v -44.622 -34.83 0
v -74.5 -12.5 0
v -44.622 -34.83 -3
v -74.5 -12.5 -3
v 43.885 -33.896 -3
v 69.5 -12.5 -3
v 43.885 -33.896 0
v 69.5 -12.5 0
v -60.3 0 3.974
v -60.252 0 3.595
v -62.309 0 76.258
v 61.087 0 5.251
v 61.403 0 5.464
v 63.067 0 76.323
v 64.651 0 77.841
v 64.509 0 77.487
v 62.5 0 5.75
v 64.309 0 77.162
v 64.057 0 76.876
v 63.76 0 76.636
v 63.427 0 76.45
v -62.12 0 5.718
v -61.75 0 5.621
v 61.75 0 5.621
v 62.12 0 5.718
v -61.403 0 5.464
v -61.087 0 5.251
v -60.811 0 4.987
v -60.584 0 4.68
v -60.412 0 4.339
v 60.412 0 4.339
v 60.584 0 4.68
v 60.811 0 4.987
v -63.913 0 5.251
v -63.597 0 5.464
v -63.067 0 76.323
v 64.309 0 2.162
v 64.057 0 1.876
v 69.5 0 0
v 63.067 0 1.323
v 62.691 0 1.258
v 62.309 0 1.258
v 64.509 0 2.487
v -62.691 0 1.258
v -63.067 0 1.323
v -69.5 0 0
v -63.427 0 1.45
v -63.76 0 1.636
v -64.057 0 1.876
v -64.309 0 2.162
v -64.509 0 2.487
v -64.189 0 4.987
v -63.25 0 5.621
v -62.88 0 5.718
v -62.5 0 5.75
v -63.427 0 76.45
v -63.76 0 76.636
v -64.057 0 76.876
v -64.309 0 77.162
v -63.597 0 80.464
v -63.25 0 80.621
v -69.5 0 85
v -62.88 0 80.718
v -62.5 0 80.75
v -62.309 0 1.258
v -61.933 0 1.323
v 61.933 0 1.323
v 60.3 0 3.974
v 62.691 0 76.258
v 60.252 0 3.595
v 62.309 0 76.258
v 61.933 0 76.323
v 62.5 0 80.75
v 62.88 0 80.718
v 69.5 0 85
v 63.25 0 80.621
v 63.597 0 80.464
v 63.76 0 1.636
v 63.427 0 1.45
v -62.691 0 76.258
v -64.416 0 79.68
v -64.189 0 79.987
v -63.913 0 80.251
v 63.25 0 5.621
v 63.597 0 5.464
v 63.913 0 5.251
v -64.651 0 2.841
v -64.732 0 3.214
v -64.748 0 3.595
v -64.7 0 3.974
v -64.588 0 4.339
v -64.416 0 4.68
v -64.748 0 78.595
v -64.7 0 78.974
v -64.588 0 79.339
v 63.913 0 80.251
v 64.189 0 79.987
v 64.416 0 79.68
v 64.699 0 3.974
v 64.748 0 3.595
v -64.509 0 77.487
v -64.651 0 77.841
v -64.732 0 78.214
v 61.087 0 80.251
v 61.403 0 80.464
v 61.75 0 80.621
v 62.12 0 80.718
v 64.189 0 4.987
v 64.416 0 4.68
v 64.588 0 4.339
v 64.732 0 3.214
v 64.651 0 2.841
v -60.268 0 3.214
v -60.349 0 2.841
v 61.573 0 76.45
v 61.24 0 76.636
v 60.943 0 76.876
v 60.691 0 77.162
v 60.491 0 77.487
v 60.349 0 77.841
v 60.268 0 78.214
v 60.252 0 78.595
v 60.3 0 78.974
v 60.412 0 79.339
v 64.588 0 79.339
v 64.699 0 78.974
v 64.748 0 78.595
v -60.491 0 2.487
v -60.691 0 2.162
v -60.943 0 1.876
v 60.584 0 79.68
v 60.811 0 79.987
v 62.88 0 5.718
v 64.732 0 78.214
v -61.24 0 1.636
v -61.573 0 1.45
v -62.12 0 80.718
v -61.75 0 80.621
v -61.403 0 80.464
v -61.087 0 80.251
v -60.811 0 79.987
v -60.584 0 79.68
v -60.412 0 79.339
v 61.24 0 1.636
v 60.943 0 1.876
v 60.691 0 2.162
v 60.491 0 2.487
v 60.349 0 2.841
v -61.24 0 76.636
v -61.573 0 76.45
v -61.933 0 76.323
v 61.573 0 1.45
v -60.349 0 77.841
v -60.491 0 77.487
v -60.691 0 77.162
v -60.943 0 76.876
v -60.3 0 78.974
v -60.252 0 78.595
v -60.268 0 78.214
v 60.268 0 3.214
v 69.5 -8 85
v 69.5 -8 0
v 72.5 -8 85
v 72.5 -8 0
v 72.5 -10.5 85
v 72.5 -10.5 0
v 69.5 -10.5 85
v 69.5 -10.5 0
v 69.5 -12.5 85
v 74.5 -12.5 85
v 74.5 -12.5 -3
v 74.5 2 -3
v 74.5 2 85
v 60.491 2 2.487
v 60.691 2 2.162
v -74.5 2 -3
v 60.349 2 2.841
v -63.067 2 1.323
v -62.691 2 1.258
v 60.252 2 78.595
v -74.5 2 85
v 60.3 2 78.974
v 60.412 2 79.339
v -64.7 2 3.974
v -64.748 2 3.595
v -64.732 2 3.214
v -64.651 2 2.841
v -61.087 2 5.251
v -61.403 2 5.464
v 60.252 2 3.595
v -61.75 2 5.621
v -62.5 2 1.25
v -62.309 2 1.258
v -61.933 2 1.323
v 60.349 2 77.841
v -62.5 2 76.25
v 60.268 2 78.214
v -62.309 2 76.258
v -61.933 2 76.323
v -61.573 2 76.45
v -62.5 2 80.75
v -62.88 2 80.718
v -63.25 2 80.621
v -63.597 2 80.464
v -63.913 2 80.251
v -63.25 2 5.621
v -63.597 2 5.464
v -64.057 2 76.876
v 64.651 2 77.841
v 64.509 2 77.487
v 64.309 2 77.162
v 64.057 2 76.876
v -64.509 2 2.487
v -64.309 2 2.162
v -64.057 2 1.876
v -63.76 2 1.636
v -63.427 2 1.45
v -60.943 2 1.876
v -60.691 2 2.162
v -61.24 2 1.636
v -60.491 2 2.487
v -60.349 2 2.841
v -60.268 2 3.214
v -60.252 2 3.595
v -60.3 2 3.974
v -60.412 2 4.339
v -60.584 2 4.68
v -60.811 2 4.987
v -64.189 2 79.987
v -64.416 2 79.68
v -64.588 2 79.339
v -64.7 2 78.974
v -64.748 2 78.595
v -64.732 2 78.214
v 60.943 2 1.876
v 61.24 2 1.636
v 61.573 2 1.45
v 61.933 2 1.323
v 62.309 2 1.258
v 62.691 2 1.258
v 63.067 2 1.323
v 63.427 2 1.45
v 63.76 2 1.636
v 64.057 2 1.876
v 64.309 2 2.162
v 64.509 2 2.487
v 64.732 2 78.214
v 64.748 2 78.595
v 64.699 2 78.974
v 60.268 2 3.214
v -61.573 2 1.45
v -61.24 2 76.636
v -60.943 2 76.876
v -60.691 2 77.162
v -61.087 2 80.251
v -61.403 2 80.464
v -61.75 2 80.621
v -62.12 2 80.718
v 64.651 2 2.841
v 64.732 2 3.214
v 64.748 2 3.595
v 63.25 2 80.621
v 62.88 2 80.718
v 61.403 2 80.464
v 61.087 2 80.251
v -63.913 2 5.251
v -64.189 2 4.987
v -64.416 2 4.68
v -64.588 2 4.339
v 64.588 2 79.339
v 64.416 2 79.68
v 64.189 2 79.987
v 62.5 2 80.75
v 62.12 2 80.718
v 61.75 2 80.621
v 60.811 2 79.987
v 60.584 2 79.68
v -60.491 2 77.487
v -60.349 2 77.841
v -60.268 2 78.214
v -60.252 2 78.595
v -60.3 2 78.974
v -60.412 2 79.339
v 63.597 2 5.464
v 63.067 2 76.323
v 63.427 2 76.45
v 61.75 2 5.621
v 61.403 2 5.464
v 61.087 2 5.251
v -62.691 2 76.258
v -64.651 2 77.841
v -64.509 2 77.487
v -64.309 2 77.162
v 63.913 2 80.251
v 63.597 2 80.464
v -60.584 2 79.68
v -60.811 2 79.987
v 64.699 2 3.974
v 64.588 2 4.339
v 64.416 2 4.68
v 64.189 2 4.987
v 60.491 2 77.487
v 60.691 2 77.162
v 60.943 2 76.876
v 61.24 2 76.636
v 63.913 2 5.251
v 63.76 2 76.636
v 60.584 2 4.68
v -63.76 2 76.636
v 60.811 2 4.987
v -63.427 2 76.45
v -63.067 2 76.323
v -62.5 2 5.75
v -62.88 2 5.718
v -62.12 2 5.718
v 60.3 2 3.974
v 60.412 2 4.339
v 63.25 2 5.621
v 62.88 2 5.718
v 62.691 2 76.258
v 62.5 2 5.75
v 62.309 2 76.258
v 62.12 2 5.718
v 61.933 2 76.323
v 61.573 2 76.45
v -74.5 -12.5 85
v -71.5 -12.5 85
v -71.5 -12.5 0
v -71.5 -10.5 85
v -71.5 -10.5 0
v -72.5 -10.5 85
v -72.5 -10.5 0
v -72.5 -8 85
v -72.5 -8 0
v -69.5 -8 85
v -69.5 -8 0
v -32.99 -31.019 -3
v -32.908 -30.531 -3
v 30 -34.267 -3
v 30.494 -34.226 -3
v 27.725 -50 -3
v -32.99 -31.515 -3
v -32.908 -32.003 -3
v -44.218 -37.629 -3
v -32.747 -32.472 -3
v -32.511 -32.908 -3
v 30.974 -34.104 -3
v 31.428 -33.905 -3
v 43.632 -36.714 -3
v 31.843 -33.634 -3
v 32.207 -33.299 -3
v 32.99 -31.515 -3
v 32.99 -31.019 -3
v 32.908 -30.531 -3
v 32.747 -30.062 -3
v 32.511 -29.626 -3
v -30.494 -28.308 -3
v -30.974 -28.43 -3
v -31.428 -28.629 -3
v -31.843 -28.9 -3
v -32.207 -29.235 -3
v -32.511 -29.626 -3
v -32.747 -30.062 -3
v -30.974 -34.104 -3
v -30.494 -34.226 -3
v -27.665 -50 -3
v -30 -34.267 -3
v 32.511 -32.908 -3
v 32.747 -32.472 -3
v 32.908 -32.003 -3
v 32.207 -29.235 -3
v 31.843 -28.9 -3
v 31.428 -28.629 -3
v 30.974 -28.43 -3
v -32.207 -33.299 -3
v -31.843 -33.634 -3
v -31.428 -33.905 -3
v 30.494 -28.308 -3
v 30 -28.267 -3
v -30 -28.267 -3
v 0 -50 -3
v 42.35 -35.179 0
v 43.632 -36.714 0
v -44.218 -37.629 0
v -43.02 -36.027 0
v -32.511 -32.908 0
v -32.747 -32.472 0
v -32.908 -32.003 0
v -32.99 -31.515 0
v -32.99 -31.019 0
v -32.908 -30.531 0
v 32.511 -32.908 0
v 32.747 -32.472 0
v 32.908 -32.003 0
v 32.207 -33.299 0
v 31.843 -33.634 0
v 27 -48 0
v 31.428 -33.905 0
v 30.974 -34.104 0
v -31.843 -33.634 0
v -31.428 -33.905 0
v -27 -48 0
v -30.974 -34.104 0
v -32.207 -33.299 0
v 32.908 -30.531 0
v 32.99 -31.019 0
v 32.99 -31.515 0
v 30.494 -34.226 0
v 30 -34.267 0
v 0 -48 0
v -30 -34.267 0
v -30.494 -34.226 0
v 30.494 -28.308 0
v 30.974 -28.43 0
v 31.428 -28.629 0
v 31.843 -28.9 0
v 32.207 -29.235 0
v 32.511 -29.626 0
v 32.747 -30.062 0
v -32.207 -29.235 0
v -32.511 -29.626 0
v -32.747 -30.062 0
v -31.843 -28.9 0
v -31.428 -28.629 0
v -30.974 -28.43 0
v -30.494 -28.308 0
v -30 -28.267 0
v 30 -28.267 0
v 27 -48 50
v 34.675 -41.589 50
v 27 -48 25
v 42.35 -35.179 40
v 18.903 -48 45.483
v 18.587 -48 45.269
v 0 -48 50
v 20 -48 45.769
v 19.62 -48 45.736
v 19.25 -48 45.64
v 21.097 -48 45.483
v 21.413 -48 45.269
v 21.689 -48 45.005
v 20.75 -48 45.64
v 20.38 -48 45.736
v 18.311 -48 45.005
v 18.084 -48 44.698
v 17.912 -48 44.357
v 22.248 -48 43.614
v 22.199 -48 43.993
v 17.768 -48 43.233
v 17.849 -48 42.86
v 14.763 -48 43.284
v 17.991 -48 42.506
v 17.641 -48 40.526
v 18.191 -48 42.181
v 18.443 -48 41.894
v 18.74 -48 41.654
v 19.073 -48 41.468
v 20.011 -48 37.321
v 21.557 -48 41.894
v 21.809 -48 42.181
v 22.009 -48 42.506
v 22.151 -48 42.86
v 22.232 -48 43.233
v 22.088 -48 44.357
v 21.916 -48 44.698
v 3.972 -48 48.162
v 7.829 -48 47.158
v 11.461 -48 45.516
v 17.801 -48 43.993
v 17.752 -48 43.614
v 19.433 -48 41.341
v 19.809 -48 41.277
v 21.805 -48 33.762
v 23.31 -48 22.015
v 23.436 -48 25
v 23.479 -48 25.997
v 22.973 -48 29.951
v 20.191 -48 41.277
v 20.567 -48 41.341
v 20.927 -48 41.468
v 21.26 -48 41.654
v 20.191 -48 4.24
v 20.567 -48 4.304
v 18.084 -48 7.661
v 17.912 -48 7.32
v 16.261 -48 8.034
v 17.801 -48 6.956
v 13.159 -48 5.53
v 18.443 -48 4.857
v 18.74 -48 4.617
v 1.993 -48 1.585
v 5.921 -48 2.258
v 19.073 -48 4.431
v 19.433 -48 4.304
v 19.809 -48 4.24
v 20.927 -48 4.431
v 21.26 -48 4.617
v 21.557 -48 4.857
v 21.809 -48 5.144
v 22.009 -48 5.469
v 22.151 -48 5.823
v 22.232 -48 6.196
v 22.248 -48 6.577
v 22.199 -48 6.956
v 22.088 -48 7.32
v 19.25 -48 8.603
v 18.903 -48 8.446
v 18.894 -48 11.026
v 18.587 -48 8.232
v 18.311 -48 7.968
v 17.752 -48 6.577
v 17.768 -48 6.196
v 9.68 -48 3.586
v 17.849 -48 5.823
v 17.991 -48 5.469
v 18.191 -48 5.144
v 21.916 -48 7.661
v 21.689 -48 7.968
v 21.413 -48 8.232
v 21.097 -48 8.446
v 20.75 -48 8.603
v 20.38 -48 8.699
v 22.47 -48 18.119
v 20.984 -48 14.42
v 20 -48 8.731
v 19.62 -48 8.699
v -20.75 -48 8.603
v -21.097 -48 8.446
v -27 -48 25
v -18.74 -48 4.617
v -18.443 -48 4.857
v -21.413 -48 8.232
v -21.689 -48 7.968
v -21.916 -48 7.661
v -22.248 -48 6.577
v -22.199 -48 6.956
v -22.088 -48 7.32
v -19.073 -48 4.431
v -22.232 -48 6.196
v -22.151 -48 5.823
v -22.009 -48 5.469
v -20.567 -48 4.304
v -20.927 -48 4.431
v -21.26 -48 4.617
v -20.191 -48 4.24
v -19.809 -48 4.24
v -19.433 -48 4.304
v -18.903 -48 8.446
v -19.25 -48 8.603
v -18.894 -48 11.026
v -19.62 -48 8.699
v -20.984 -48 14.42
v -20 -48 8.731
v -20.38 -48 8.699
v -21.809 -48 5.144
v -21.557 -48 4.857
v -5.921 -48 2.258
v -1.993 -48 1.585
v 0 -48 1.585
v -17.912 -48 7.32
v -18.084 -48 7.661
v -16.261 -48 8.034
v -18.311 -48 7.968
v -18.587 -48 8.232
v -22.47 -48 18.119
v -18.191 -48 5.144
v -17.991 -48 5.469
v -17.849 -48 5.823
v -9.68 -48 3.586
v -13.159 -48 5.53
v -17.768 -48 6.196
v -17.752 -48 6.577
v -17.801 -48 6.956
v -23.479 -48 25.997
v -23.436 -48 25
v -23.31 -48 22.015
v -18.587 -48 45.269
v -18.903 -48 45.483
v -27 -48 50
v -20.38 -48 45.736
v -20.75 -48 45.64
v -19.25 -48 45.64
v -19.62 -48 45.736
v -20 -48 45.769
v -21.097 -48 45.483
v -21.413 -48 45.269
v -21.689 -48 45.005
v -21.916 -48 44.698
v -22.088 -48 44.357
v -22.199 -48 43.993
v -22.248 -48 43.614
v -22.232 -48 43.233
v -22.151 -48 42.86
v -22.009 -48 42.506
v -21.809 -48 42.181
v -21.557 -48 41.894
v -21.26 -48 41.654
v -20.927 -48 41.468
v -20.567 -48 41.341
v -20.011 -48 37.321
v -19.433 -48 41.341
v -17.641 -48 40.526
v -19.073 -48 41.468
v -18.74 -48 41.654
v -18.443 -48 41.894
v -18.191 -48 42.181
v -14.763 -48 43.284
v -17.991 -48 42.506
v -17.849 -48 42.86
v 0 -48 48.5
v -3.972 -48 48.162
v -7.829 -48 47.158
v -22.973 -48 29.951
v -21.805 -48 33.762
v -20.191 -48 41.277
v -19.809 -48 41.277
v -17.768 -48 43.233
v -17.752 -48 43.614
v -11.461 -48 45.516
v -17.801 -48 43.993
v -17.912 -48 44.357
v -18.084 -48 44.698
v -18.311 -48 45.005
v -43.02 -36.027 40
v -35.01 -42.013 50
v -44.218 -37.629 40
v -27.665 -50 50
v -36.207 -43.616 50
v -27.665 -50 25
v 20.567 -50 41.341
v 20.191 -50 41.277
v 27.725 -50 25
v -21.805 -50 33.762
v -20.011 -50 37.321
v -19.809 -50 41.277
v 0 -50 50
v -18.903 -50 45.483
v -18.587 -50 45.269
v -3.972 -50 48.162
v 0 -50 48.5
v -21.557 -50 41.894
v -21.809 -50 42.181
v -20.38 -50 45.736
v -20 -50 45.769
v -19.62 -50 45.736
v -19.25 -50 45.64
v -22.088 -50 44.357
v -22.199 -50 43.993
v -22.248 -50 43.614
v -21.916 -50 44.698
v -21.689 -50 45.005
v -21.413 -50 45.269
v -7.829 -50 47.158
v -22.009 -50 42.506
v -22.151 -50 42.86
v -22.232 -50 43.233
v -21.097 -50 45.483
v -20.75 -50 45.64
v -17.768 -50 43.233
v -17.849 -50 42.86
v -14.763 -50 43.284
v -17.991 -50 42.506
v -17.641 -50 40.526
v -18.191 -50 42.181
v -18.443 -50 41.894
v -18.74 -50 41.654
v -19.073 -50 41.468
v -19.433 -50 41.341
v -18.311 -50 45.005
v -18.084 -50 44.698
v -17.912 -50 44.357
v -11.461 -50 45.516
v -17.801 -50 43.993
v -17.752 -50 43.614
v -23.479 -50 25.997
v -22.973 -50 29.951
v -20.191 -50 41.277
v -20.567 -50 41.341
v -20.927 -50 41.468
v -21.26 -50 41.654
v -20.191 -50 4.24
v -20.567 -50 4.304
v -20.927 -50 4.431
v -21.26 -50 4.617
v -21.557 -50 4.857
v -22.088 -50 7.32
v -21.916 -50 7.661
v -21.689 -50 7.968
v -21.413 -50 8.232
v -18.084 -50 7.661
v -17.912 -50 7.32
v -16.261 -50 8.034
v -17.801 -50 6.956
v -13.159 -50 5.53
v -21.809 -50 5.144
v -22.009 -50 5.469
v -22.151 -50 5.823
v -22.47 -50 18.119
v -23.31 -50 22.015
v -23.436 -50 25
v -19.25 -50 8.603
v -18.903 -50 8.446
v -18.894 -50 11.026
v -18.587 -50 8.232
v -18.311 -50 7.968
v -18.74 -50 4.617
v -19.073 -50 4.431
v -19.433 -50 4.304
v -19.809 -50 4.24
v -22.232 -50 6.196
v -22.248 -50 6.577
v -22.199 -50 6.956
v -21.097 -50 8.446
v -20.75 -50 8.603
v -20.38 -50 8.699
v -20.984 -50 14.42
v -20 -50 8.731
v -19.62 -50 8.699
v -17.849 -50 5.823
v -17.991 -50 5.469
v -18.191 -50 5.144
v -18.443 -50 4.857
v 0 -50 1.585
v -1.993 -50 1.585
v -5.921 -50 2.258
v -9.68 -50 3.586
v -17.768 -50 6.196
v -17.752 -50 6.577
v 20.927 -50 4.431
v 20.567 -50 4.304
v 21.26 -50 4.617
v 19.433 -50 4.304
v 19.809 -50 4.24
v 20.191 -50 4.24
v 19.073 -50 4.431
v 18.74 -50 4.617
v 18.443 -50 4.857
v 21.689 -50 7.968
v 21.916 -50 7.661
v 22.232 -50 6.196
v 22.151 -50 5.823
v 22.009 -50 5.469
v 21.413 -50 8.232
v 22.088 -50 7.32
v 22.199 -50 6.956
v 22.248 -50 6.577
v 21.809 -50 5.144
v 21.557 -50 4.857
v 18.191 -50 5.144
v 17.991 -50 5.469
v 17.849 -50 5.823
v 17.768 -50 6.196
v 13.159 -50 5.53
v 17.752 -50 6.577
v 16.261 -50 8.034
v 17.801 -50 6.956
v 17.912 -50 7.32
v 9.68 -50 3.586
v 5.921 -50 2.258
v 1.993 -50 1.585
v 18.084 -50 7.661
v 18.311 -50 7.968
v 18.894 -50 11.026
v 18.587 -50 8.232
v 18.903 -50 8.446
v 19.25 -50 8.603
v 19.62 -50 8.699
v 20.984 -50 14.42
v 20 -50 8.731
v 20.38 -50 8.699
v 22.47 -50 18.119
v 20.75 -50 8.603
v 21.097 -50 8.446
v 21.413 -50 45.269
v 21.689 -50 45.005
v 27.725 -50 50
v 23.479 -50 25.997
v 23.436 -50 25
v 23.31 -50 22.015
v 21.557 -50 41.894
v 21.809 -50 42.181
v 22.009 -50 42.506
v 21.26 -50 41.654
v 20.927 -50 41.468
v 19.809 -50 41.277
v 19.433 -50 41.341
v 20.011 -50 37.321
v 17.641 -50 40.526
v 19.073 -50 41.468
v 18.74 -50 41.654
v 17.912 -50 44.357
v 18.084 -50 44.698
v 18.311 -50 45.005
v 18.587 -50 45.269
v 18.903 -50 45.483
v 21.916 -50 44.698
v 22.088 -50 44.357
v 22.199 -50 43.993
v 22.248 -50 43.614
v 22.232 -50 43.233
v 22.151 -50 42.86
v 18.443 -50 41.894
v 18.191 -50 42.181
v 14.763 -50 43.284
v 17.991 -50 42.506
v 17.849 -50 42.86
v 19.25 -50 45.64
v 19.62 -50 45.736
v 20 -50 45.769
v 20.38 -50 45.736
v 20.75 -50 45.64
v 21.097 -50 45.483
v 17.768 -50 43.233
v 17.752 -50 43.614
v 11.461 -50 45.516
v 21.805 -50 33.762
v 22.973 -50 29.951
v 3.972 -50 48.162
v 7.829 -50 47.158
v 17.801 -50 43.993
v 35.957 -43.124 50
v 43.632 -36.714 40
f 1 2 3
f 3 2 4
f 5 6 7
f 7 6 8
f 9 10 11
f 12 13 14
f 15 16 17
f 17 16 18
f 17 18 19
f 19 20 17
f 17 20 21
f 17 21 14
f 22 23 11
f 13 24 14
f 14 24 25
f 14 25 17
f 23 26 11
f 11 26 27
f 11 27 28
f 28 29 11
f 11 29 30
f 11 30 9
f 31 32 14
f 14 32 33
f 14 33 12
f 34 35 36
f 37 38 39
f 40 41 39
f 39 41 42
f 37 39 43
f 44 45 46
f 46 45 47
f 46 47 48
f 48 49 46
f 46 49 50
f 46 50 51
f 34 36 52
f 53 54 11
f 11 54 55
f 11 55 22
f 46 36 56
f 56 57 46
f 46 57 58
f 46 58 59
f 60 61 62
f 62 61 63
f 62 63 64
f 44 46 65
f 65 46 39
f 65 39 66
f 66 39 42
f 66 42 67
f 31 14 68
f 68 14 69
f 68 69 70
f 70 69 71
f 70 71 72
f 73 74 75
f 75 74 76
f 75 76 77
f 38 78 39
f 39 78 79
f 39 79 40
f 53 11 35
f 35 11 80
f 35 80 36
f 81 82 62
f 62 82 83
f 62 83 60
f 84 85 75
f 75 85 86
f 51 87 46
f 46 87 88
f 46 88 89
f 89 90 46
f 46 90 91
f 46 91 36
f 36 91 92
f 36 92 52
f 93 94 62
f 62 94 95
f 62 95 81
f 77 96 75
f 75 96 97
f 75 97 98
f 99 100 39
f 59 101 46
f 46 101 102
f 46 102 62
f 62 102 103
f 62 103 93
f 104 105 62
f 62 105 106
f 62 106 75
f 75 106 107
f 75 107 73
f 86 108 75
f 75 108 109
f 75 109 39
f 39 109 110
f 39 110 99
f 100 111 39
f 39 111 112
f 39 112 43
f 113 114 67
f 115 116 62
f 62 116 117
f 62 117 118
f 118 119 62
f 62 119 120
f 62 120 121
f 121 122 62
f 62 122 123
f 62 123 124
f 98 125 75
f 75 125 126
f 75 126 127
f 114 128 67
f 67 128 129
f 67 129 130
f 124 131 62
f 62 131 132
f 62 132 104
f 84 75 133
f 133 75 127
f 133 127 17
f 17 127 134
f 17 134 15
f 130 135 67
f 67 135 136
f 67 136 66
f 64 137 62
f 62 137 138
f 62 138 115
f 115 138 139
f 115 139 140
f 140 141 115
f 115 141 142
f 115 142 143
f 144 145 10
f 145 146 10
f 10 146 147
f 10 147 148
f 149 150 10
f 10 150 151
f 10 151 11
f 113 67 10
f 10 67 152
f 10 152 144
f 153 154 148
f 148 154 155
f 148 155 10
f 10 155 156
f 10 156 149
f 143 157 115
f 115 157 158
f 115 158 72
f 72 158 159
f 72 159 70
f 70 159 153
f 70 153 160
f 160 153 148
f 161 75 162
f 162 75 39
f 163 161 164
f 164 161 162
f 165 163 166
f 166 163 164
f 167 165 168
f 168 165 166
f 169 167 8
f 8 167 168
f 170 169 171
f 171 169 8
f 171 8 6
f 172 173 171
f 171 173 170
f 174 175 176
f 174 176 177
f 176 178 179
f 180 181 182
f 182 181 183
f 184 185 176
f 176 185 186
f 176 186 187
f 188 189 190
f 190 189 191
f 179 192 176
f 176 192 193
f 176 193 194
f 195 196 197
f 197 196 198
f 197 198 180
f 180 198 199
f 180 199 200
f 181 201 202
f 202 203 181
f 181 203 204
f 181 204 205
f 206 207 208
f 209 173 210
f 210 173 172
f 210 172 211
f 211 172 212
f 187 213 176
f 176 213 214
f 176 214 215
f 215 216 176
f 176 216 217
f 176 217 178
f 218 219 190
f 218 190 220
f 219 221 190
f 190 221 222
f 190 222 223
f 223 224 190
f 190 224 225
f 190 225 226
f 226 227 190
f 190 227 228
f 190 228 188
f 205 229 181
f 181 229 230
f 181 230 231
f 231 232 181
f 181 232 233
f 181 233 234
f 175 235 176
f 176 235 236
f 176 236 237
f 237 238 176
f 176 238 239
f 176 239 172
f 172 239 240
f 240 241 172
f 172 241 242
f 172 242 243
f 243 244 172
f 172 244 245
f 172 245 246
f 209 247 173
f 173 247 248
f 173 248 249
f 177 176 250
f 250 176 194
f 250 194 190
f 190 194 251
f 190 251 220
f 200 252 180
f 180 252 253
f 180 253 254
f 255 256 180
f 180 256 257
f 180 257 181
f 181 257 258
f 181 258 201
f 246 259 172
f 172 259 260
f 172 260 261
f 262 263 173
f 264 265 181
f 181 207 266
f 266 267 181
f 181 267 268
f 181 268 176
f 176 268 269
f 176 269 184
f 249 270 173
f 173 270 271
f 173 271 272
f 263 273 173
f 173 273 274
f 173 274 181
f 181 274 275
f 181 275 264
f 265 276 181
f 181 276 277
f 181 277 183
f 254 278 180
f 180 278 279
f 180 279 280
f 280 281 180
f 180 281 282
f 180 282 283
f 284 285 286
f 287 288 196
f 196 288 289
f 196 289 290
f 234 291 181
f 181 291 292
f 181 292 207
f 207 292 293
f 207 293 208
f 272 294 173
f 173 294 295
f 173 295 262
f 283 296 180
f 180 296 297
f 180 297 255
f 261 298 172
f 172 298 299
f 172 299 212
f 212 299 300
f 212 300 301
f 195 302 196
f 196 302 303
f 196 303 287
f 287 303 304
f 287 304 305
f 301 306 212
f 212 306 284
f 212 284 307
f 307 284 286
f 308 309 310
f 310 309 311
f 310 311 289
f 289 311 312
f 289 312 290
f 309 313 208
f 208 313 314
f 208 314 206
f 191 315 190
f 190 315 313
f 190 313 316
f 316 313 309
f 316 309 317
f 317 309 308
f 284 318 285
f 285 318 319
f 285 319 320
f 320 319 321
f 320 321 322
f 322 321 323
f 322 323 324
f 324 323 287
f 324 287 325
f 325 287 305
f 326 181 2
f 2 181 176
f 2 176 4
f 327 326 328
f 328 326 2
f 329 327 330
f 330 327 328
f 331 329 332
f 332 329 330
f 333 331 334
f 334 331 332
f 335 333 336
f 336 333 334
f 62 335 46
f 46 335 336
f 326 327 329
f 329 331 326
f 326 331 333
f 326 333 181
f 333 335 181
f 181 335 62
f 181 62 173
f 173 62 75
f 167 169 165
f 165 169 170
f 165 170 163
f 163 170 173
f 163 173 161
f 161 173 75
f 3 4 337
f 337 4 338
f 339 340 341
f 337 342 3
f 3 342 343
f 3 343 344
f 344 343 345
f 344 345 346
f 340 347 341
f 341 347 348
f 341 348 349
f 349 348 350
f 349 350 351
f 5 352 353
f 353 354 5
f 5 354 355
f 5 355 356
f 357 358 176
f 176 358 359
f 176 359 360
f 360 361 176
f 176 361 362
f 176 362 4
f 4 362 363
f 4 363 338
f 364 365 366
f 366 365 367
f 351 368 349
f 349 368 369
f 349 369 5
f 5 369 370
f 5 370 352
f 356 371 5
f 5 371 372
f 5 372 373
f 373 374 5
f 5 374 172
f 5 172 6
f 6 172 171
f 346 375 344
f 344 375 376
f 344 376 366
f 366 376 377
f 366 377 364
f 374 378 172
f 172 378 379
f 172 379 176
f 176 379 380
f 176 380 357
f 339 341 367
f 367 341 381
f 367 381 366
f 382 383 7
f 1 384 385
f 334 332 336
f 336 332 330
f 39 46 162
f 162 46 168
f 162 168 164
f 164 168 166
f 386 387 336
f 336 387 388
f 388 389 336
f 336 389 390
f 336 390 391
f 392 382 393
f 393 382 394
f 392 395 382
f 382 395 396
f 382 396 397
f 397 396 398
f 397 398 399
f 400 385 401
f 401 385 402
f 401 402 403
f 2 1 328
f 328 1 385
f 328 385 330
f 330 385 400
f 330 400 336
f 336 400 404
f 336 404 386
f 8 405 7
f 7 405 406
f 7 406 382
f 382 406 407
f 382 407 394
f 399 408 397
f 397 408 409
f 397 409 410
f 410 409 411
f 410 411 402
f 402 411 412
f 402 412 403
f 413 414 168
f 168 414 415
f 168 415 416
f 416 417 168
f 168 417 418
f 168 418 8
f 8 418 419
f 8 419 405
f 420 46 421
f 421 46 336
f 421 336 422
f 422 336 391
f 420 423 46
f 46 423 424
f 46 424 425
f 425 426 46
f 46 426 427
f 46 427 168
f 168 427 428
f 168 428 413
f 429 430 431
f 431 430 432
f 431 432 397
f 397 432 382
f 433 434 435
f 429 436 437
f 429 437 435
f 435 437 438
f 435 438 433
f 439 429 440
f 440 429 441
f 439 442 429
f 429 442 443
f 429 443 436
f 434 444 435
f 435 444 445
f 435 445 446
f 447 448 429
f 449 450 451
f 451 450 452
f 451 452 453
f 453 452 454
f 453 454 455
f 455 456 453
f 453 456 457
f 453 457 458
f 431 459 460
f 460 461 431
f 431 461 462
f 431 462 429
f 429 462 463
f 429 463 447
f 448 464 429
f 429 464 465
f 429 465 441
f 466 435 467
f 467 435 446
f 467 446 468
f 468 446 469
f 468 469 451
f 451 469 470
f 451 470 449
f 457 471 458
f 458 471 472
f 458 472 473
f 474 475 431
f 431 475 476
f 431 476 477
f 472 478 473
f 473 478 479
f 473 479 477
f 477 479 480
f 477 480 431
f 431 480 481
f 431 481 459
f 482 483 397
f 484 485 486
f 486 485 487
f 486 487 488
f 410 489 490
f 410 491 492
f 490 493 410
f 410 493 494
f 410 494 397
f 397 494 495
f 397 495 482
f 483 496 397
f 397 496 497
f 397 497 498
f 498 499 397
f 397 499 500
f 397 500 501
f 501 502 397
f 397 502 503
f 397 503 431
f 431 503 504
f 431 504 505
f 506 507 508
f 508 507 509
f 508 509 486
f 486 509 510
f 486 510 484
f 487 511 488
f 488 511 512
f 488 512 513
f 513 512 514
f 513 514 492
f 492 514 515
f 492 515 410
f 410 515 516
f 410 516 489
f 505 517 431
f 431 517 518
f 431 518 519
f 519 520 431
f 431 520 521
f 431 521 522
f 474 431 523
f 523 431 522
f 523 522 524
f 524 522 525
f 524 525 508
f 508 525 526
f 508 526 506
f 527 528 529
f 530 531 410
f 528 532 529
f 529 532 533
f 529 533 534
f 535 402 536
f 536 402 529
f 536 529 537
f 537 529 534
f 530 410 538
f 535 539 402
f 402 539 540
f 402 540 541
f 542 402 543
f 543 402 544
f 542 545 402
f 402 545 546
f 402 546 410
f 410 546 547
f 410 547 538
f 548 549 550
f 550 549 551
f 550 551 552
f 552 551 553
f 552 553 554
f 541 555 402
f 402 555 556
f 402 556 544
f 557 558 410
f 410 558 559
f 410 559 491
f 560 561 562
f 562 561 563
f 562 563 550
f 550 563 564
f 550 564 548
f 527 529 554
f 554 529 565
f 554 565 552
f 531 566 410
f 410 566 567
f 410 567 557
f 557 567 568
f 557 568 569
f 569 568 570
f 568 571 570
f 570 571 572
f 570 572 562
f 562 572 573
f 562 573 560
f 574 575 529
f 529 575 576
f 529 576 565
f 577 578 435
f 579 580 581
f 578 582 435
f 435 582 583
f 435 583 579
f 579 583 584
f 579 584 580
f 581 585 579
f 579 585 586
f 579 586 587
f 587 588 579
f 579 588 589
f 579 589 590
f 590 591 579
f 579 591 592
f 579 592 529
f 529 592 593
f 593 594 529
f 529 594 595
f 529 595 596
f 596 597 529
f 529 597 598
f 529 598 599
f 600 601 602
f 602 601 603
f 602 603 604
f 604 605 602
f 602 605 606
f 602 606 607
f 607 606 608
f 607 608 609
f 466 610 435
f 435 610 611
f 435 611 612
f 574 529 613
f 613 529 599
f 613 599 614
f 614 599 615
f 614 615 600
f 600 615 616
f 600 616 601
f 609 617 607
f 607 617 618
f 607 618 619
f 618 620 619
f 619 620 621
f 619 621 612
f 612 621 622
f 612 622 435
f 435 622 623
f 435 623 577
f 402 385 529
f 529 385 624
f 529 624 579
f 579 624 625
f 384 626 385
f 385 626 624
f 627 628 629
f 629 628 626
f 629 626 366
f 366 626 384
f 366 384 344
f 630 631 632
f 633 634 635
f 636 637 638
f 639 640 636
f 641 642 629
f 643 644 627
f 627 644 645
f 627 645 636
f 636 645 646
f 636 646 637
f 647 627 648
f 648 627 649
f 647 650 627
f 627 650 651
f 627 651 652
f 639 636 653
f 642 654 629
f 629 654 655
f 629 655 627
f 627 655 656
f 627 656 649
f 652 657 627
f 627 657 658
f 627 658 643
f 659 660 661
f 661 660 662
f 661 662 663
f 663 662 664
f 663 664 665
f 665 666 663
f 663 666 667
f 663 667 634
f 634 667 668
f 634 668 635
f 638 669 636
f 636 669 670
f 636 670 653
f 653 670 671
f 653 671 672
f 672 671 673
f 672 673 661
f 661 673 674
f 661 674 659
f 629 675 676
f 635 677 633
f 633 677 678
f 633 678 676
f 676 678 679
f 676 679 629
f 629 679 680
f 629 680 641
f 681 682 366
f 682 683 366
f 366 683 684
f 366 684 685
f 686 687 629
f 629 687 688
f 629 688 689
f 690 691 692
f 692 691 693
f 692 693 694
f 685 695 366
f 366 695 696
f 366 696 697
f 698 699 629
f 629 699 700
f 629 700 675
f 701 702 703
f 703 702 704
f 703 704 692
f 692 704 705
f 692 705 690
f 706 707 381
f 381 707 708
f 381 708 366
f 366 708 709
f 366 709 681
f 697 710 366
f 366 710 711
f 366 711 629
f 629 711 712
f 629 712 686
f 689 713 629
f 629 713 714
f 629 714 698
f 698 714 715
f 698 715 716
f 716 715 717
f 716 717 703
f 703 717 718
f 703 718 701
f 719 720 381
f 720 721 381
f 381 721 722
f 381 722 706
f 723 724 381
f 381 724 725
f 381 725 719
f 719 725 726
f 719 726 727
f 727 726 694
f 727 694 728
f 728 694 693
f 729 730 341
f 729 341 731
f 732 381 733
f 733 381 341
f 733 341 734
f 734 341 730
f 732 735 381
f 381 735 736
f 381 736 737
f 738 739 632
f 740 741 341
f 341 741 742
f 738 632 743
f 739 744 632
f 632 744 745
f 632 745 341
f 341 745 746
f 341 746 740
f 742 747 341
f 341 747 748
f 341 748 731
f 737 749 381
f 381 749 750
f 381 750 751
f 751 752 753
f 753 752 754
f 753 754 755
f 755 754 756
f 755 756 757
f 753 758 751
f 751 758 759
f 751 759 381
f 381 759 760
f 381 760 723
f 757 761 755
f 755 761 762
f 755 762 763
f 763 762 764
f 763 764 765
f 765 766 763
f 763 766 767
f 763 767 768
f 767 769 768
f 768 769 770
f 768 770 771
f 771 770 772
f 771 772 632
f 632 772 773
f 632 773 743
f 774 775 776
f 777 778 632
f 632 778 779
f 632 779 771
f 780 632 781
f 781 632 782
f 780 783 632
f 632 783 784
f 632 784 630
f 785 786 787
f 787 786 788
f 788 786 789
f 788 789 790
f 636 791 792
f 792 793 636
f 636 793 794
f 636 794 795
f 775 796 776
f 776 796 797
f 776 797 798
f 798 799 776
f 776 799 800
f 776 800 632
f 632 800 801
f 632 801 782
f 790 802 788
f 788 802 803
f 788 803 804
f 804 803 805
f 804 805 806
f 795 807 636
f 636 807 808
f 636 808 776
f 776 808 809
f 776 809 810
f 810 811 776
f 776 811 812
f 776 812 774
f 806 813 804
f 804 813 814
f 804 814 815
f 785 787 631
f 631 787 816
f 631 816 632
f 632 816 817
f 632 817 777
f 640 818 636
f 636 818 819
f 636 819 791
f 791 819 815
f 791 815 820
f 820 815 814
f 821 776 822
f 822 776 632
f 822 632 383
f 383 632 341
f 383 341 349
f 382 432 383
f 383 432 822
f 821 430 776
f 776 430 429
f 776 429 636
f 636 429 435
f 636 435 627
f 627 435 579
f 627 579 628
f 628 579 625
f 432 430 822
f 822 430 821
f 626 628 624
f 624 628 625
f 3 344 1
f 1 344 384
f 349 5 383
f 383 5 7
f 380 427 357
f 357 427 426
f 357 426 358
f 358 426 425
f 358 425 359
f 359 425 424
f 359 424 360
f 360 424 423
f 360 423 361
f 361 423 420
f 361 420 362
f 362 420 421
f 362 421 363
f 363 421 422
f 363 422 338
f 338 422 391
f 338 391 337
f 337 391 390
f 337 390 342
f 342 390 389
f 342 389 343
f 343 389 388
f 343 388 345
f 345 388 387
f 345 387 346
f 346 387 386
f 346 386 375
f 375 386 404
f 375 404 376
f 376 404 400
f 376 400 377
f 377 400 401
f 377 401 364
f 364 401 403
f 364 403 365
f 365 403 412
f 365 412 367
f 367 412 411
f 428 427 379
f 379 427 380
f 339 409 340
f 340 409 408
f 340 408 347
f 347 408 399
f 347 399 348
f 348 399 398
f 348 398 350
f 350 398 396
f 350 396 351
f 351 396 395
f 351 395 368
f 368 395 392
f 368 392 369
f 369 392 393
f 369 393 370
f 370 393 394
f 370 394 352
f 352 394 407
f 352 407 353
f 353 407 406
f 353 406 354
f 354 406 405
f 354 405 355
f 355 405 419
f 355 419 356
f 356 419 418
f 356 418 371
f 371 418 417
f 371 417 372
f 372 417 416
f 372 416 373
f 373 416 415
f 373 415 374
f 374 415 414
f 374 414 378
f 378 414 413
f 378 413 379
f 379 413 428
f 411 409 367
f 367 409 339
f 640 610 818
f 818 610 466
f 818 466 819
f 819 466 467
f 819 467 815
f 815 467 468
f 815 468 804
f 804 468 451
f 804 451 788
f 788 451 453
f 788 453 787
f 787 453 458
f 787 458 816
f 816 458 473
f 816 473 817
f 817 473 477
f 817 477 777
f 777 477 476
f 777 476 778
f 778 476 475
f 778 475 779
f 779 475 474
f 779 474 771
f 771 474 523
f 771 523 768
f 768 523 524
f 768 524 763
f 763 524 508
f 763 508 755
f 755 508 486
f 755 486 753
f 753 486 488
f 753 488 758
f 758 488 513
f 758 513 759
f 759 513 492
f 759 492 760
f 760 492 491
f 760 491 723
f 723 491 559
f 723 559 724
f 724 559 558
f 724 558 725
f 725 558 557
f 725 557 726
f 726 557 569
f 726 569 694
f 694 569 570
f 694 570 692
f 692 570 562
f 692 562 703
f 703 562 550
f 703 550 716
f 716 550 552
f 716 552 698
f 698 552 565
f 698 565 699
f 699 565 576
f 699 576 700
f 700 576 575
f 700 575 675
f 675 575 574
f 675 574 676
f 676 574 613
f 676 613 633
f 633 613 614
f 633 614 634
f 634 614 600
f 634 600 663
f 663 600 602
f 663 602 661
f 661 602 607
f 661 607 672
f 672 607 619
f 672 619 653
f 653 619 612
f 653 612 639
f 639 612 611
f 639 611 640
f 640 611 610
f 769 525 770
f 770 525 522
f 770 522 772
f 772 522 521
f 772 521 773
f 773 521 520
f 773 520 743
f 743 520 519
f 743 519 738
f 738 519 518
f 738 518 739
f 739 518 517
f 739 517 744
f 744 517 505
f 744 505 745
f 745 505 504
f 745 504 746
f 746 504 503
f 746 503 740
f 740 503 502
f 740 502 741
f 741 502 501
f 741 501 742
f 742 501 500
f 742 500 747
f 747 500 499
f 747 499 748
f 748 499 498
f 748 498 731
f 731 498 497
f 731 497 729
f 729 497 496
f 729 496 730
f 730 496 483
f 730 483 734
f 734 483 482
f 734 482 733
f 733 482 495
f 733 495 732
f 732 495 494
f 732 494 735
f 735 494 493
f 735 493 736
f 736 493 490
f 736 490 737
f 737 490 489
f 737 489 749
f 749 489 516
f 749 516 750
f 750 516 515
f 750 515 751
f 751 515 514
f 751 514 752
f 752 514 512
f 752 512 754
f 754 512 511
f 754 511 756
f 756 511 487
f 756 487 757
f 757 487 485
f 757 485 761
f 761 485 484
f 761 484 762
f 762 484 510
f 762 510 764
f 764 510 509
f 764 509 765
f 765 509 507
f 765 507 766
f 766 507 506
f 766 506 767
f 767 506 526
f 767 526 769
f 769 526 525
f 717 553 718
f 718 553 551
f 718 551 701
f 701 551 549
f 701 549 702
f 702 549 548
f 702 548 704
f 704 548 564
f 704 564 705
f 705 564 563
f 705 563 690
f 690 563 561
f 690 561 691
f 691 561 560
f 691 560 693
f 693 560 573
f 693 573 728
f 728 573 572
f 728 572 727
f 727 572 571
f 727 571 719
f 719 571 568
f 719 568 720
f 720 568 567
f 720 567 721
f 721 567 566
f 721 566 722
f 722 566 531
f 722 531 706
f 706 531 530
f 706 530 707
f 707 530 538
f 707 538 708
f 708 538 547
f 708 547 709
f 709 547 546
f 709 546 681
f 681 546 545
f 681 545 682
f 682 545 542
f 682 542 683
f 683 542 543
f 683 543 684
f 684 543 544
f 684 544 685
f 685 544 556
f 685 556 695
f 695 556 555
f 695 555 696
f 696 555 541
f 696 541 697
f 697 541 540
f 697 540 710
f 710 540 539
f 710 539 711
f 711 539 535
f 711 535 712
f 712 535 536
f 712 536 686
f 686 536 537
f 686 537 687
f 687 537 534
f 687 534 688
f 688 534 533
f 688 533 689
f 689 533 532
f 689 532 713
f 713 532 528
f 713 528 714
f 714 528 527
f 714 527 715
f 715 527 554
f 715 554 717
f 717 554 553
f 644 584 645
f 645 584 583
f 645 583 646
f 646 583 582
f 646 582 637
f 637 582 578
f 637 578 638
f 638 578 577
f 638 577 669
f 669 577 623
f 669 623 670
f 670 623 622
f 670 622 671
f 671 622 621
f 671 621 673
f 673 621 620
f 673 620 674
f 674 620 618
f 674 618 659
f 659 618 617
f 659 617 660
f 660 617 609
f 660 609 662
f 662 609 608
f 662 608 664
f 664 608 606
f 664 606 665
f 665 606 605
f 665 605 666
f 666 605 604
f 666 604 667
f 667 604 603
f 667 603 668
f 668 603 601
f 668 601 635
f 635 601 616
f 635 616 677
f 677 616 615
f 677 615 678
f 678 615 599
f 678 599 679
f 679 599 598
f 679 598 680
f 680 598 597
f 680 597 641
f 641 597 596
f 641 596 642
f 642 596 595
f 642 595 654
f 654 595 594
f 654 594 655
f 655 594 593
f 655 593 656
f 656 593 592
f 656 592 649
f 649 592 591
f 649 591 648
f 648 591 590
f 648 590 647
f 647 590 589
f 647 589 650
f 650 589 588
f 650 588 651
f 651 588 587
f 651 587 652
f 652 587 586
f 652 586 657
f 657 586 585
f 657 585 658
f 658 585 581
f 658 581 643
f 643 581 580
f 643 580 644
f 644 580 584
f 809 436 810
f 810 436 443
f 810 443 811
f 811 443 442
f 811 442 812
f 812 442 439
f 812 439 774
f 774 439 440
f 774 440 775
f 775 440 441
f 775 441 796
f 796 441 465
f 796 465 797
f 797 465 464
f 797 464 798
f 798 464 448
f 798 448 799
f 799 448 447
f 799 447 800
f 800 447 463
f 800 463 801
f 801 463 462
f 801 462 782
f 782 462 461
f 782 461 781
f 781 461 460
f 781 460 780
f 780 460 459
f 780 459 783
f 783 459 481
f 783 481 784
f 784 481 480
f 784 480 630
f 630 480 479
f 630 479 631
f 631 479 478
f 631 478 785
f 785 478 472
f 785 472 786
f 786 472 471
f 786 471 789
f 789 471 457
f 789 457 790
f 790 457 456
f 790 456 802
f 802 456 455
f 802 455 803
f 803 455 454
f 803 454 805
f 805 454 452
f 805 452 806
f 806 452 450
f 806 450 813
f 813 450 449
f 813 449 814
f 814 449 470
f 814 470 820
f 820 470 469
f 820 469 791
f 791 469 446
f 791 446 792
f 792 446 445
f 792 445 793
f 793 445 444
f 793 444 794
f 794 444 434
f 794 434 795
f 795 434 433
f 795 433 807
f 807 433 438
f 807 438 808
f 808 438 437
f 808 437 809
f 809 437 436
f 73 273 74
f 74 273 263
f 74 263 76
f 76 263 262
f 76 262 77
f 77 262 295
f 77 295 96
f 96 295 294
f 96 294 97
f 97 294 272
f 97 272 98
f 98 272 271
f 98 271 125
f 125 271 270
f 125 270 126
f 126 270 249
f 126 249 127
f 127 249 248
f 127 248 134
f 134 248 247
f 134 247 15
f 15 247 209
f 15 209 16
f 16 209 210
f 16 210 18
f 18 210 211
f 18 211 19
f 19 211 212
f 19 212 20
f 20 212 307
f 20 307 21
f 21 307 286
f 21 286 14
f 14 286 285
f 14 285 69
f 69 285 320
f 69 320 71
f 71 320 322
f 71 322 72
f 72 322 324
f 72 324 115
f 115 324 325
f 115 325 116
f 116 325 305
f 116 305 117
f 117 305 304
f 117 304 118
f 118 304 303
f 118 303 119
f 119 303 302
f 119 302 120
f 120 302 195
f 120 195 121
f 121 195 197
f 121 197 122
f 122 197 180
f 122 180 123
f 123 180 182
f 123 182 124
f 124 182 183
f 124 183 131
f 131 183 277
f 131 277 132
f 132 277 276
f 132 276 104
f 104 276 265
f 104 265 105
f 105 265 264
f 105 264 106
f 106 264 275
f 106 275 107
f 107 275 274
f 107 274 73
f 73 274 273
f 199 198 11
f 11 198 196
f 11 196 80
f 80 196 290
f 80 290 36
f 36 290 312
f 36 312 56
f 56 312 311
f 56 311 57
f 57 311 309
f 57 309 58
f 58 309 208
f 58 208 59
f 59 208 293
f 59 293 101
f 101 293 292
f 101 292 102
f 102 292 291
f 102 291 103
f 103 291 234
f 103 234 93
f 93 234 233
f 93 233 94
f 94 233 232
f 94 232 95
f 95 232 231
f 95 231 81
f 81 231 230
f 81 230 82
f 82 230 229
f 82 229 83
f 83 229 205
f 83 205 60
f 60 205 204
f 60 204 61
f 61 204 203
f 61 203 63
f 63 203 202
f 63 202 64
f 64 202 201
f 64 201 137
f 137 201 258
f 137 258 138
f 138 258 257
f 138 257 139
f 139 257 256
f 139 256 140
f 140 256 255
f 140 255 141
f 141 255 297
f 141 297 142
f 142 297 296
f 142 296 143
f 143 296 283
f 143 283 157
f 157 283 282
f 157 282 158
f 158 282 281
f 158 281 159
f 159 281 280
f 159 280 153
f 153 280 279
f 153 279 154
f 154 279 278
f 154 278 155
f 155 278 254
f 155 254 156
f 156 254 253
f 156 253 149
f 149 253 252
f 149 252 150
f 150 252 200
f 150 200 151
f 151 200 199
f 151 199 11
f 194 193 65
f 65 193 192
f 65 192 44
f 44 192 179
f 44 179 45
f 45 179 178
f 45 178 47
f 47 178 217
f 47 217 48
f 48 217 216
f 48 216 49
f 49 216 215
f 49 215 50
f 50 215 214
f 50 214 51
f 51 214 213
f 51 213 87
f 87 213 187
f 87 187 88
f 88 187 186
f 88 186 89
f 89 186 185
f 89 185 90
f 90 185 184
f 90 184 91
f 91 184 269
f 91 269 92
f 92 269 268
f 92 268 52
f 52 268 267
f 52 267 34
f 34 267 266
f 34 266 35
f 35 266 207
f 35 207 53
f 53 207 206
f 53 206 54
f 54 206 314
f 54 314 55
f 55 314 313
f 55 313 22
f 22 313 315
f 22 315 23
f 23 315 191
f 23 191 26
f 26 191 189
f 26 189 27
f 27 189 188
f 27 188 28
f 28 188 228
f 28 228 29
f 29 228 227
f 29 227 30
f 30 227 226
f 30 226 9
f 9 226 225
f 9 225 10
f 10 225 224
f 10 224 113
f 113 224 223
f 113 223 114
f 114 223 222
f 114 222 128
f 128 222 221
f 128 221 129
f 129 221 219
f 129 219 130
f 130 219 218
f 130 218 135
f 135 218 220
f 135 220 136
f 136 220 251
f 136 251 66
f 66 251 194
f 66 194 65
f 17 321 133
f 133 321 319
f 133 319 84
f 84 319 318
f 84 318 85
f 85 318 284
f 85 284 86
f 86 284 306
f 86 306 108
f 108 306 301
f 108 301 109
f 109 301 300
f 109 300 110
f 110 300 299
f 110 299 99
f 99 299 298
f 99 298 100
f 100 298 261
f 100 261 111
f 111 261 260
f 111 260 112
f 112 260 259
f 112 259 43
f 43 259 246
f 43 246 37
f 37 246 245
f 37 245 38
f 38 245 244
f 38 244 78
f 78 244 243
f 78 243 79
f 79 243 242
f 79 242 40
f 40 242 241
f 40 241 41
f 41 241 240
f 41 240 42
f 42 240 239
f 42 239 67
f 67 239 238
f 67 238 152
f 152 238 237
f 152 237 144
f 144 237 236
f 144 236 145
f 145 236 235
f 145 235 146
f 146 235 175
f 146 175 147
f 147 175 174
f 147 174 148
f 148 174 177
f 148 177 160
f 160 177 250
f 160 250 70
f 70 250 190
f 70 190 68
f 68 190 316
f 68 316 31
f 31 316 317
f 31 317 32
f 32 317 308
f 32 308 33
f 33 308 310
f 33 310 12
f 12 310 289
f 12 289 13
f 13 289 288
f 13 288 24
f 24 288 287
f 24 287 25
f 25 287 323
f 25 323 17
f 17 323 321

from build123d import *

# Parameters (mm, degrees)
BOSS_EXTRUDE1_DEPTH = 85
BOSS_EXTRUDE2_DEPTH = 3
EXTRUDE_THIN1_DEPTH = 53
CHAMFER1_SIZE       = 10
CHAMFER2_SIZE       = 2
CUT_EXTRUDE1_DEPTH  = 53
SKETCH6_R           = 23.5
SKETCH6_R_2         = 2.25
CUT_EXTRUDE2_DEPTH  = 53
SKETCH7_R           = 2.25
CUT_EXTRUDE3_DEPTH  = 53


with BuildPart() as part:
    # Sketch1 → Boss-Extrude1 (new body)
    with BuildSketch(Plane.XY):
        Polygon((0, 0), (69.5, 0), (69.5, -8), (72.5, -8), (72.5, -10.5), (69.5, -10.5), (69.5, -12.5), (74.5, -12.5), (74.5, -6), (74.5, 2), (71.5, 2), (0, 2), (-71.5, 2), (-74.5, 2), (-74.5, -6), (-74.5, -12.5), (-71.5, -12.5), (-71.5, -10.5), (-72.5, -10.5), (-72.5, -8), (-69.5, -8), (-69.5, 0), align=None)
    extrude(amount=BOSS_EXTRUDE1_DEPTH)

    # Sketch2 → Boss-Extrude2 (add)
    with BuildSketch(Plane(origin=(0, 0, 0), x_dir=(-1, 0, 0), z_dir=(0, 0, -1))):
        Polygon((-27, -48), (27, -48), (74.5, -12.5), (74.5, 2), (-74.5, 2), (-74.5, -12.5), (-69.5, -12.5), align=None)
    extrude(amount=BOSS_EXTRUDE2_DEPTH)

    # Sketch4 → Extrude-Thin1 (add)
    with BuildSketch(Plane(origin=(0, 0, -3), x_dir=(-1, 0, 0), z_dir=(0, 0, -1))):
        Polygon((43.020213309, -36.026998474), (27, -48), (-27, -48), (-42.349613383, -35.178558233), (-43.63175756, -36.713519571), (-27.725407751, -50), (27.664793483, -50), (44.217513462, -37.629019805), align=None)
    extrude(amount=-EXTRUDE_THIN1_DEPTH)

    # Chamfer1
    chamfer1_edges = [part.edges().sort_by_distance(p)[0] for p in [
        (-43.618863385, -36.82800914, 50),
        (42.990685472, -35.946038902, 50),
    ]]
    chamfer(chamfer1_edges, length=CHAMFER1_SIZE)

    # Chamfer2
    chamfer2_edges = [part.edges().sort_by_distance(p)[0] for p in [
        (-43.020213309, -36.026998474, -1.5),
        (42.349613383, -35.178558233, -1.5),
    ]]
    chamfer(chamfer2_edges, length=CHAMFER2_SIZE - 0.0001)  # a hair under: the kernel refuses the full size

    # Sketch5 → Cut-Extrude1 (cut)
    with BuildSketch(Plane.XY):
        with BuildLine():
            Line((-30, -28.267007474), (30, -28.267007474))
            ThreePointArc((30, -28.267007474), (33, -31.267007474), (30, -34.267007474))
            Line((30, -34.267007474), (-30, -34.267007474))
            ThreePointArc((-30, -34.267007474), (-33, -31.267007474), (-30, -28.267007474))
        make_face()
    extrude(amount=-CUT_EXTRUDE1_DEPTH, mode=Mode.SUBTRACT)

    # Sketch6 → Cut-Extrude2 (cut)
    with BuildSketch(Plane(origin=(0, -48, 0), x_dir=(1, 0, 0), z_dir=(0, 1, 0))):
        with Locations(Location((0, -25, 0), (0, 0, 270))):
            Circle(SKETCH6_R)
        with Locations(Location((20, -43.518518519, 0), (0, 0, 270))):
            Circle(SKETCH6_R_2)
        with Locations(Location((-20, -43.518518519, 0), (0, 0, 270))):
            Circle(SKETCH6_R_2)
        with Locations(Location((-20, -6.481481481, 0), (0, 0, 270))):
            Circle(SKETCH6_R_2)
        with Locations(Location((20, -6.481481481, 0), (0, 0, 270))):
            Circle(SKETCH6_R_2)
    extrude(amount=-CUT_EXTRUDE2_DEPTH, mode=Mode.SUBTRACT)

    # Sketch7 → Cut-Extrude3 (cut)
    with BuildSketch(Plane(origin=(0, 2, 0), x_dir=(1, 0, 0), z_dir=(0, 1, 0))):
        with Locations(Location((62.5, -78.5, 0), (0, 0, 270))):
            Circle(SKETCH7_R)
        with Locations(Location((62.5, -3.5, 0), (0, 0, 270))):
            Circle(SKETCH7_R)
        with Locations(Location((-62.5, -3.5, 0), (0, 0, 270))):
            Circle(SKETCH7_R)
        with Locations(Location((-62.5, -78.5, 0), (0, 0, 270))):
            Circle(SKETCH7_R)
    extrude(amount=-CUT_EXTRUDE3_DEPTH, mode=Mode.SUBTRACT)


solid = part.part
